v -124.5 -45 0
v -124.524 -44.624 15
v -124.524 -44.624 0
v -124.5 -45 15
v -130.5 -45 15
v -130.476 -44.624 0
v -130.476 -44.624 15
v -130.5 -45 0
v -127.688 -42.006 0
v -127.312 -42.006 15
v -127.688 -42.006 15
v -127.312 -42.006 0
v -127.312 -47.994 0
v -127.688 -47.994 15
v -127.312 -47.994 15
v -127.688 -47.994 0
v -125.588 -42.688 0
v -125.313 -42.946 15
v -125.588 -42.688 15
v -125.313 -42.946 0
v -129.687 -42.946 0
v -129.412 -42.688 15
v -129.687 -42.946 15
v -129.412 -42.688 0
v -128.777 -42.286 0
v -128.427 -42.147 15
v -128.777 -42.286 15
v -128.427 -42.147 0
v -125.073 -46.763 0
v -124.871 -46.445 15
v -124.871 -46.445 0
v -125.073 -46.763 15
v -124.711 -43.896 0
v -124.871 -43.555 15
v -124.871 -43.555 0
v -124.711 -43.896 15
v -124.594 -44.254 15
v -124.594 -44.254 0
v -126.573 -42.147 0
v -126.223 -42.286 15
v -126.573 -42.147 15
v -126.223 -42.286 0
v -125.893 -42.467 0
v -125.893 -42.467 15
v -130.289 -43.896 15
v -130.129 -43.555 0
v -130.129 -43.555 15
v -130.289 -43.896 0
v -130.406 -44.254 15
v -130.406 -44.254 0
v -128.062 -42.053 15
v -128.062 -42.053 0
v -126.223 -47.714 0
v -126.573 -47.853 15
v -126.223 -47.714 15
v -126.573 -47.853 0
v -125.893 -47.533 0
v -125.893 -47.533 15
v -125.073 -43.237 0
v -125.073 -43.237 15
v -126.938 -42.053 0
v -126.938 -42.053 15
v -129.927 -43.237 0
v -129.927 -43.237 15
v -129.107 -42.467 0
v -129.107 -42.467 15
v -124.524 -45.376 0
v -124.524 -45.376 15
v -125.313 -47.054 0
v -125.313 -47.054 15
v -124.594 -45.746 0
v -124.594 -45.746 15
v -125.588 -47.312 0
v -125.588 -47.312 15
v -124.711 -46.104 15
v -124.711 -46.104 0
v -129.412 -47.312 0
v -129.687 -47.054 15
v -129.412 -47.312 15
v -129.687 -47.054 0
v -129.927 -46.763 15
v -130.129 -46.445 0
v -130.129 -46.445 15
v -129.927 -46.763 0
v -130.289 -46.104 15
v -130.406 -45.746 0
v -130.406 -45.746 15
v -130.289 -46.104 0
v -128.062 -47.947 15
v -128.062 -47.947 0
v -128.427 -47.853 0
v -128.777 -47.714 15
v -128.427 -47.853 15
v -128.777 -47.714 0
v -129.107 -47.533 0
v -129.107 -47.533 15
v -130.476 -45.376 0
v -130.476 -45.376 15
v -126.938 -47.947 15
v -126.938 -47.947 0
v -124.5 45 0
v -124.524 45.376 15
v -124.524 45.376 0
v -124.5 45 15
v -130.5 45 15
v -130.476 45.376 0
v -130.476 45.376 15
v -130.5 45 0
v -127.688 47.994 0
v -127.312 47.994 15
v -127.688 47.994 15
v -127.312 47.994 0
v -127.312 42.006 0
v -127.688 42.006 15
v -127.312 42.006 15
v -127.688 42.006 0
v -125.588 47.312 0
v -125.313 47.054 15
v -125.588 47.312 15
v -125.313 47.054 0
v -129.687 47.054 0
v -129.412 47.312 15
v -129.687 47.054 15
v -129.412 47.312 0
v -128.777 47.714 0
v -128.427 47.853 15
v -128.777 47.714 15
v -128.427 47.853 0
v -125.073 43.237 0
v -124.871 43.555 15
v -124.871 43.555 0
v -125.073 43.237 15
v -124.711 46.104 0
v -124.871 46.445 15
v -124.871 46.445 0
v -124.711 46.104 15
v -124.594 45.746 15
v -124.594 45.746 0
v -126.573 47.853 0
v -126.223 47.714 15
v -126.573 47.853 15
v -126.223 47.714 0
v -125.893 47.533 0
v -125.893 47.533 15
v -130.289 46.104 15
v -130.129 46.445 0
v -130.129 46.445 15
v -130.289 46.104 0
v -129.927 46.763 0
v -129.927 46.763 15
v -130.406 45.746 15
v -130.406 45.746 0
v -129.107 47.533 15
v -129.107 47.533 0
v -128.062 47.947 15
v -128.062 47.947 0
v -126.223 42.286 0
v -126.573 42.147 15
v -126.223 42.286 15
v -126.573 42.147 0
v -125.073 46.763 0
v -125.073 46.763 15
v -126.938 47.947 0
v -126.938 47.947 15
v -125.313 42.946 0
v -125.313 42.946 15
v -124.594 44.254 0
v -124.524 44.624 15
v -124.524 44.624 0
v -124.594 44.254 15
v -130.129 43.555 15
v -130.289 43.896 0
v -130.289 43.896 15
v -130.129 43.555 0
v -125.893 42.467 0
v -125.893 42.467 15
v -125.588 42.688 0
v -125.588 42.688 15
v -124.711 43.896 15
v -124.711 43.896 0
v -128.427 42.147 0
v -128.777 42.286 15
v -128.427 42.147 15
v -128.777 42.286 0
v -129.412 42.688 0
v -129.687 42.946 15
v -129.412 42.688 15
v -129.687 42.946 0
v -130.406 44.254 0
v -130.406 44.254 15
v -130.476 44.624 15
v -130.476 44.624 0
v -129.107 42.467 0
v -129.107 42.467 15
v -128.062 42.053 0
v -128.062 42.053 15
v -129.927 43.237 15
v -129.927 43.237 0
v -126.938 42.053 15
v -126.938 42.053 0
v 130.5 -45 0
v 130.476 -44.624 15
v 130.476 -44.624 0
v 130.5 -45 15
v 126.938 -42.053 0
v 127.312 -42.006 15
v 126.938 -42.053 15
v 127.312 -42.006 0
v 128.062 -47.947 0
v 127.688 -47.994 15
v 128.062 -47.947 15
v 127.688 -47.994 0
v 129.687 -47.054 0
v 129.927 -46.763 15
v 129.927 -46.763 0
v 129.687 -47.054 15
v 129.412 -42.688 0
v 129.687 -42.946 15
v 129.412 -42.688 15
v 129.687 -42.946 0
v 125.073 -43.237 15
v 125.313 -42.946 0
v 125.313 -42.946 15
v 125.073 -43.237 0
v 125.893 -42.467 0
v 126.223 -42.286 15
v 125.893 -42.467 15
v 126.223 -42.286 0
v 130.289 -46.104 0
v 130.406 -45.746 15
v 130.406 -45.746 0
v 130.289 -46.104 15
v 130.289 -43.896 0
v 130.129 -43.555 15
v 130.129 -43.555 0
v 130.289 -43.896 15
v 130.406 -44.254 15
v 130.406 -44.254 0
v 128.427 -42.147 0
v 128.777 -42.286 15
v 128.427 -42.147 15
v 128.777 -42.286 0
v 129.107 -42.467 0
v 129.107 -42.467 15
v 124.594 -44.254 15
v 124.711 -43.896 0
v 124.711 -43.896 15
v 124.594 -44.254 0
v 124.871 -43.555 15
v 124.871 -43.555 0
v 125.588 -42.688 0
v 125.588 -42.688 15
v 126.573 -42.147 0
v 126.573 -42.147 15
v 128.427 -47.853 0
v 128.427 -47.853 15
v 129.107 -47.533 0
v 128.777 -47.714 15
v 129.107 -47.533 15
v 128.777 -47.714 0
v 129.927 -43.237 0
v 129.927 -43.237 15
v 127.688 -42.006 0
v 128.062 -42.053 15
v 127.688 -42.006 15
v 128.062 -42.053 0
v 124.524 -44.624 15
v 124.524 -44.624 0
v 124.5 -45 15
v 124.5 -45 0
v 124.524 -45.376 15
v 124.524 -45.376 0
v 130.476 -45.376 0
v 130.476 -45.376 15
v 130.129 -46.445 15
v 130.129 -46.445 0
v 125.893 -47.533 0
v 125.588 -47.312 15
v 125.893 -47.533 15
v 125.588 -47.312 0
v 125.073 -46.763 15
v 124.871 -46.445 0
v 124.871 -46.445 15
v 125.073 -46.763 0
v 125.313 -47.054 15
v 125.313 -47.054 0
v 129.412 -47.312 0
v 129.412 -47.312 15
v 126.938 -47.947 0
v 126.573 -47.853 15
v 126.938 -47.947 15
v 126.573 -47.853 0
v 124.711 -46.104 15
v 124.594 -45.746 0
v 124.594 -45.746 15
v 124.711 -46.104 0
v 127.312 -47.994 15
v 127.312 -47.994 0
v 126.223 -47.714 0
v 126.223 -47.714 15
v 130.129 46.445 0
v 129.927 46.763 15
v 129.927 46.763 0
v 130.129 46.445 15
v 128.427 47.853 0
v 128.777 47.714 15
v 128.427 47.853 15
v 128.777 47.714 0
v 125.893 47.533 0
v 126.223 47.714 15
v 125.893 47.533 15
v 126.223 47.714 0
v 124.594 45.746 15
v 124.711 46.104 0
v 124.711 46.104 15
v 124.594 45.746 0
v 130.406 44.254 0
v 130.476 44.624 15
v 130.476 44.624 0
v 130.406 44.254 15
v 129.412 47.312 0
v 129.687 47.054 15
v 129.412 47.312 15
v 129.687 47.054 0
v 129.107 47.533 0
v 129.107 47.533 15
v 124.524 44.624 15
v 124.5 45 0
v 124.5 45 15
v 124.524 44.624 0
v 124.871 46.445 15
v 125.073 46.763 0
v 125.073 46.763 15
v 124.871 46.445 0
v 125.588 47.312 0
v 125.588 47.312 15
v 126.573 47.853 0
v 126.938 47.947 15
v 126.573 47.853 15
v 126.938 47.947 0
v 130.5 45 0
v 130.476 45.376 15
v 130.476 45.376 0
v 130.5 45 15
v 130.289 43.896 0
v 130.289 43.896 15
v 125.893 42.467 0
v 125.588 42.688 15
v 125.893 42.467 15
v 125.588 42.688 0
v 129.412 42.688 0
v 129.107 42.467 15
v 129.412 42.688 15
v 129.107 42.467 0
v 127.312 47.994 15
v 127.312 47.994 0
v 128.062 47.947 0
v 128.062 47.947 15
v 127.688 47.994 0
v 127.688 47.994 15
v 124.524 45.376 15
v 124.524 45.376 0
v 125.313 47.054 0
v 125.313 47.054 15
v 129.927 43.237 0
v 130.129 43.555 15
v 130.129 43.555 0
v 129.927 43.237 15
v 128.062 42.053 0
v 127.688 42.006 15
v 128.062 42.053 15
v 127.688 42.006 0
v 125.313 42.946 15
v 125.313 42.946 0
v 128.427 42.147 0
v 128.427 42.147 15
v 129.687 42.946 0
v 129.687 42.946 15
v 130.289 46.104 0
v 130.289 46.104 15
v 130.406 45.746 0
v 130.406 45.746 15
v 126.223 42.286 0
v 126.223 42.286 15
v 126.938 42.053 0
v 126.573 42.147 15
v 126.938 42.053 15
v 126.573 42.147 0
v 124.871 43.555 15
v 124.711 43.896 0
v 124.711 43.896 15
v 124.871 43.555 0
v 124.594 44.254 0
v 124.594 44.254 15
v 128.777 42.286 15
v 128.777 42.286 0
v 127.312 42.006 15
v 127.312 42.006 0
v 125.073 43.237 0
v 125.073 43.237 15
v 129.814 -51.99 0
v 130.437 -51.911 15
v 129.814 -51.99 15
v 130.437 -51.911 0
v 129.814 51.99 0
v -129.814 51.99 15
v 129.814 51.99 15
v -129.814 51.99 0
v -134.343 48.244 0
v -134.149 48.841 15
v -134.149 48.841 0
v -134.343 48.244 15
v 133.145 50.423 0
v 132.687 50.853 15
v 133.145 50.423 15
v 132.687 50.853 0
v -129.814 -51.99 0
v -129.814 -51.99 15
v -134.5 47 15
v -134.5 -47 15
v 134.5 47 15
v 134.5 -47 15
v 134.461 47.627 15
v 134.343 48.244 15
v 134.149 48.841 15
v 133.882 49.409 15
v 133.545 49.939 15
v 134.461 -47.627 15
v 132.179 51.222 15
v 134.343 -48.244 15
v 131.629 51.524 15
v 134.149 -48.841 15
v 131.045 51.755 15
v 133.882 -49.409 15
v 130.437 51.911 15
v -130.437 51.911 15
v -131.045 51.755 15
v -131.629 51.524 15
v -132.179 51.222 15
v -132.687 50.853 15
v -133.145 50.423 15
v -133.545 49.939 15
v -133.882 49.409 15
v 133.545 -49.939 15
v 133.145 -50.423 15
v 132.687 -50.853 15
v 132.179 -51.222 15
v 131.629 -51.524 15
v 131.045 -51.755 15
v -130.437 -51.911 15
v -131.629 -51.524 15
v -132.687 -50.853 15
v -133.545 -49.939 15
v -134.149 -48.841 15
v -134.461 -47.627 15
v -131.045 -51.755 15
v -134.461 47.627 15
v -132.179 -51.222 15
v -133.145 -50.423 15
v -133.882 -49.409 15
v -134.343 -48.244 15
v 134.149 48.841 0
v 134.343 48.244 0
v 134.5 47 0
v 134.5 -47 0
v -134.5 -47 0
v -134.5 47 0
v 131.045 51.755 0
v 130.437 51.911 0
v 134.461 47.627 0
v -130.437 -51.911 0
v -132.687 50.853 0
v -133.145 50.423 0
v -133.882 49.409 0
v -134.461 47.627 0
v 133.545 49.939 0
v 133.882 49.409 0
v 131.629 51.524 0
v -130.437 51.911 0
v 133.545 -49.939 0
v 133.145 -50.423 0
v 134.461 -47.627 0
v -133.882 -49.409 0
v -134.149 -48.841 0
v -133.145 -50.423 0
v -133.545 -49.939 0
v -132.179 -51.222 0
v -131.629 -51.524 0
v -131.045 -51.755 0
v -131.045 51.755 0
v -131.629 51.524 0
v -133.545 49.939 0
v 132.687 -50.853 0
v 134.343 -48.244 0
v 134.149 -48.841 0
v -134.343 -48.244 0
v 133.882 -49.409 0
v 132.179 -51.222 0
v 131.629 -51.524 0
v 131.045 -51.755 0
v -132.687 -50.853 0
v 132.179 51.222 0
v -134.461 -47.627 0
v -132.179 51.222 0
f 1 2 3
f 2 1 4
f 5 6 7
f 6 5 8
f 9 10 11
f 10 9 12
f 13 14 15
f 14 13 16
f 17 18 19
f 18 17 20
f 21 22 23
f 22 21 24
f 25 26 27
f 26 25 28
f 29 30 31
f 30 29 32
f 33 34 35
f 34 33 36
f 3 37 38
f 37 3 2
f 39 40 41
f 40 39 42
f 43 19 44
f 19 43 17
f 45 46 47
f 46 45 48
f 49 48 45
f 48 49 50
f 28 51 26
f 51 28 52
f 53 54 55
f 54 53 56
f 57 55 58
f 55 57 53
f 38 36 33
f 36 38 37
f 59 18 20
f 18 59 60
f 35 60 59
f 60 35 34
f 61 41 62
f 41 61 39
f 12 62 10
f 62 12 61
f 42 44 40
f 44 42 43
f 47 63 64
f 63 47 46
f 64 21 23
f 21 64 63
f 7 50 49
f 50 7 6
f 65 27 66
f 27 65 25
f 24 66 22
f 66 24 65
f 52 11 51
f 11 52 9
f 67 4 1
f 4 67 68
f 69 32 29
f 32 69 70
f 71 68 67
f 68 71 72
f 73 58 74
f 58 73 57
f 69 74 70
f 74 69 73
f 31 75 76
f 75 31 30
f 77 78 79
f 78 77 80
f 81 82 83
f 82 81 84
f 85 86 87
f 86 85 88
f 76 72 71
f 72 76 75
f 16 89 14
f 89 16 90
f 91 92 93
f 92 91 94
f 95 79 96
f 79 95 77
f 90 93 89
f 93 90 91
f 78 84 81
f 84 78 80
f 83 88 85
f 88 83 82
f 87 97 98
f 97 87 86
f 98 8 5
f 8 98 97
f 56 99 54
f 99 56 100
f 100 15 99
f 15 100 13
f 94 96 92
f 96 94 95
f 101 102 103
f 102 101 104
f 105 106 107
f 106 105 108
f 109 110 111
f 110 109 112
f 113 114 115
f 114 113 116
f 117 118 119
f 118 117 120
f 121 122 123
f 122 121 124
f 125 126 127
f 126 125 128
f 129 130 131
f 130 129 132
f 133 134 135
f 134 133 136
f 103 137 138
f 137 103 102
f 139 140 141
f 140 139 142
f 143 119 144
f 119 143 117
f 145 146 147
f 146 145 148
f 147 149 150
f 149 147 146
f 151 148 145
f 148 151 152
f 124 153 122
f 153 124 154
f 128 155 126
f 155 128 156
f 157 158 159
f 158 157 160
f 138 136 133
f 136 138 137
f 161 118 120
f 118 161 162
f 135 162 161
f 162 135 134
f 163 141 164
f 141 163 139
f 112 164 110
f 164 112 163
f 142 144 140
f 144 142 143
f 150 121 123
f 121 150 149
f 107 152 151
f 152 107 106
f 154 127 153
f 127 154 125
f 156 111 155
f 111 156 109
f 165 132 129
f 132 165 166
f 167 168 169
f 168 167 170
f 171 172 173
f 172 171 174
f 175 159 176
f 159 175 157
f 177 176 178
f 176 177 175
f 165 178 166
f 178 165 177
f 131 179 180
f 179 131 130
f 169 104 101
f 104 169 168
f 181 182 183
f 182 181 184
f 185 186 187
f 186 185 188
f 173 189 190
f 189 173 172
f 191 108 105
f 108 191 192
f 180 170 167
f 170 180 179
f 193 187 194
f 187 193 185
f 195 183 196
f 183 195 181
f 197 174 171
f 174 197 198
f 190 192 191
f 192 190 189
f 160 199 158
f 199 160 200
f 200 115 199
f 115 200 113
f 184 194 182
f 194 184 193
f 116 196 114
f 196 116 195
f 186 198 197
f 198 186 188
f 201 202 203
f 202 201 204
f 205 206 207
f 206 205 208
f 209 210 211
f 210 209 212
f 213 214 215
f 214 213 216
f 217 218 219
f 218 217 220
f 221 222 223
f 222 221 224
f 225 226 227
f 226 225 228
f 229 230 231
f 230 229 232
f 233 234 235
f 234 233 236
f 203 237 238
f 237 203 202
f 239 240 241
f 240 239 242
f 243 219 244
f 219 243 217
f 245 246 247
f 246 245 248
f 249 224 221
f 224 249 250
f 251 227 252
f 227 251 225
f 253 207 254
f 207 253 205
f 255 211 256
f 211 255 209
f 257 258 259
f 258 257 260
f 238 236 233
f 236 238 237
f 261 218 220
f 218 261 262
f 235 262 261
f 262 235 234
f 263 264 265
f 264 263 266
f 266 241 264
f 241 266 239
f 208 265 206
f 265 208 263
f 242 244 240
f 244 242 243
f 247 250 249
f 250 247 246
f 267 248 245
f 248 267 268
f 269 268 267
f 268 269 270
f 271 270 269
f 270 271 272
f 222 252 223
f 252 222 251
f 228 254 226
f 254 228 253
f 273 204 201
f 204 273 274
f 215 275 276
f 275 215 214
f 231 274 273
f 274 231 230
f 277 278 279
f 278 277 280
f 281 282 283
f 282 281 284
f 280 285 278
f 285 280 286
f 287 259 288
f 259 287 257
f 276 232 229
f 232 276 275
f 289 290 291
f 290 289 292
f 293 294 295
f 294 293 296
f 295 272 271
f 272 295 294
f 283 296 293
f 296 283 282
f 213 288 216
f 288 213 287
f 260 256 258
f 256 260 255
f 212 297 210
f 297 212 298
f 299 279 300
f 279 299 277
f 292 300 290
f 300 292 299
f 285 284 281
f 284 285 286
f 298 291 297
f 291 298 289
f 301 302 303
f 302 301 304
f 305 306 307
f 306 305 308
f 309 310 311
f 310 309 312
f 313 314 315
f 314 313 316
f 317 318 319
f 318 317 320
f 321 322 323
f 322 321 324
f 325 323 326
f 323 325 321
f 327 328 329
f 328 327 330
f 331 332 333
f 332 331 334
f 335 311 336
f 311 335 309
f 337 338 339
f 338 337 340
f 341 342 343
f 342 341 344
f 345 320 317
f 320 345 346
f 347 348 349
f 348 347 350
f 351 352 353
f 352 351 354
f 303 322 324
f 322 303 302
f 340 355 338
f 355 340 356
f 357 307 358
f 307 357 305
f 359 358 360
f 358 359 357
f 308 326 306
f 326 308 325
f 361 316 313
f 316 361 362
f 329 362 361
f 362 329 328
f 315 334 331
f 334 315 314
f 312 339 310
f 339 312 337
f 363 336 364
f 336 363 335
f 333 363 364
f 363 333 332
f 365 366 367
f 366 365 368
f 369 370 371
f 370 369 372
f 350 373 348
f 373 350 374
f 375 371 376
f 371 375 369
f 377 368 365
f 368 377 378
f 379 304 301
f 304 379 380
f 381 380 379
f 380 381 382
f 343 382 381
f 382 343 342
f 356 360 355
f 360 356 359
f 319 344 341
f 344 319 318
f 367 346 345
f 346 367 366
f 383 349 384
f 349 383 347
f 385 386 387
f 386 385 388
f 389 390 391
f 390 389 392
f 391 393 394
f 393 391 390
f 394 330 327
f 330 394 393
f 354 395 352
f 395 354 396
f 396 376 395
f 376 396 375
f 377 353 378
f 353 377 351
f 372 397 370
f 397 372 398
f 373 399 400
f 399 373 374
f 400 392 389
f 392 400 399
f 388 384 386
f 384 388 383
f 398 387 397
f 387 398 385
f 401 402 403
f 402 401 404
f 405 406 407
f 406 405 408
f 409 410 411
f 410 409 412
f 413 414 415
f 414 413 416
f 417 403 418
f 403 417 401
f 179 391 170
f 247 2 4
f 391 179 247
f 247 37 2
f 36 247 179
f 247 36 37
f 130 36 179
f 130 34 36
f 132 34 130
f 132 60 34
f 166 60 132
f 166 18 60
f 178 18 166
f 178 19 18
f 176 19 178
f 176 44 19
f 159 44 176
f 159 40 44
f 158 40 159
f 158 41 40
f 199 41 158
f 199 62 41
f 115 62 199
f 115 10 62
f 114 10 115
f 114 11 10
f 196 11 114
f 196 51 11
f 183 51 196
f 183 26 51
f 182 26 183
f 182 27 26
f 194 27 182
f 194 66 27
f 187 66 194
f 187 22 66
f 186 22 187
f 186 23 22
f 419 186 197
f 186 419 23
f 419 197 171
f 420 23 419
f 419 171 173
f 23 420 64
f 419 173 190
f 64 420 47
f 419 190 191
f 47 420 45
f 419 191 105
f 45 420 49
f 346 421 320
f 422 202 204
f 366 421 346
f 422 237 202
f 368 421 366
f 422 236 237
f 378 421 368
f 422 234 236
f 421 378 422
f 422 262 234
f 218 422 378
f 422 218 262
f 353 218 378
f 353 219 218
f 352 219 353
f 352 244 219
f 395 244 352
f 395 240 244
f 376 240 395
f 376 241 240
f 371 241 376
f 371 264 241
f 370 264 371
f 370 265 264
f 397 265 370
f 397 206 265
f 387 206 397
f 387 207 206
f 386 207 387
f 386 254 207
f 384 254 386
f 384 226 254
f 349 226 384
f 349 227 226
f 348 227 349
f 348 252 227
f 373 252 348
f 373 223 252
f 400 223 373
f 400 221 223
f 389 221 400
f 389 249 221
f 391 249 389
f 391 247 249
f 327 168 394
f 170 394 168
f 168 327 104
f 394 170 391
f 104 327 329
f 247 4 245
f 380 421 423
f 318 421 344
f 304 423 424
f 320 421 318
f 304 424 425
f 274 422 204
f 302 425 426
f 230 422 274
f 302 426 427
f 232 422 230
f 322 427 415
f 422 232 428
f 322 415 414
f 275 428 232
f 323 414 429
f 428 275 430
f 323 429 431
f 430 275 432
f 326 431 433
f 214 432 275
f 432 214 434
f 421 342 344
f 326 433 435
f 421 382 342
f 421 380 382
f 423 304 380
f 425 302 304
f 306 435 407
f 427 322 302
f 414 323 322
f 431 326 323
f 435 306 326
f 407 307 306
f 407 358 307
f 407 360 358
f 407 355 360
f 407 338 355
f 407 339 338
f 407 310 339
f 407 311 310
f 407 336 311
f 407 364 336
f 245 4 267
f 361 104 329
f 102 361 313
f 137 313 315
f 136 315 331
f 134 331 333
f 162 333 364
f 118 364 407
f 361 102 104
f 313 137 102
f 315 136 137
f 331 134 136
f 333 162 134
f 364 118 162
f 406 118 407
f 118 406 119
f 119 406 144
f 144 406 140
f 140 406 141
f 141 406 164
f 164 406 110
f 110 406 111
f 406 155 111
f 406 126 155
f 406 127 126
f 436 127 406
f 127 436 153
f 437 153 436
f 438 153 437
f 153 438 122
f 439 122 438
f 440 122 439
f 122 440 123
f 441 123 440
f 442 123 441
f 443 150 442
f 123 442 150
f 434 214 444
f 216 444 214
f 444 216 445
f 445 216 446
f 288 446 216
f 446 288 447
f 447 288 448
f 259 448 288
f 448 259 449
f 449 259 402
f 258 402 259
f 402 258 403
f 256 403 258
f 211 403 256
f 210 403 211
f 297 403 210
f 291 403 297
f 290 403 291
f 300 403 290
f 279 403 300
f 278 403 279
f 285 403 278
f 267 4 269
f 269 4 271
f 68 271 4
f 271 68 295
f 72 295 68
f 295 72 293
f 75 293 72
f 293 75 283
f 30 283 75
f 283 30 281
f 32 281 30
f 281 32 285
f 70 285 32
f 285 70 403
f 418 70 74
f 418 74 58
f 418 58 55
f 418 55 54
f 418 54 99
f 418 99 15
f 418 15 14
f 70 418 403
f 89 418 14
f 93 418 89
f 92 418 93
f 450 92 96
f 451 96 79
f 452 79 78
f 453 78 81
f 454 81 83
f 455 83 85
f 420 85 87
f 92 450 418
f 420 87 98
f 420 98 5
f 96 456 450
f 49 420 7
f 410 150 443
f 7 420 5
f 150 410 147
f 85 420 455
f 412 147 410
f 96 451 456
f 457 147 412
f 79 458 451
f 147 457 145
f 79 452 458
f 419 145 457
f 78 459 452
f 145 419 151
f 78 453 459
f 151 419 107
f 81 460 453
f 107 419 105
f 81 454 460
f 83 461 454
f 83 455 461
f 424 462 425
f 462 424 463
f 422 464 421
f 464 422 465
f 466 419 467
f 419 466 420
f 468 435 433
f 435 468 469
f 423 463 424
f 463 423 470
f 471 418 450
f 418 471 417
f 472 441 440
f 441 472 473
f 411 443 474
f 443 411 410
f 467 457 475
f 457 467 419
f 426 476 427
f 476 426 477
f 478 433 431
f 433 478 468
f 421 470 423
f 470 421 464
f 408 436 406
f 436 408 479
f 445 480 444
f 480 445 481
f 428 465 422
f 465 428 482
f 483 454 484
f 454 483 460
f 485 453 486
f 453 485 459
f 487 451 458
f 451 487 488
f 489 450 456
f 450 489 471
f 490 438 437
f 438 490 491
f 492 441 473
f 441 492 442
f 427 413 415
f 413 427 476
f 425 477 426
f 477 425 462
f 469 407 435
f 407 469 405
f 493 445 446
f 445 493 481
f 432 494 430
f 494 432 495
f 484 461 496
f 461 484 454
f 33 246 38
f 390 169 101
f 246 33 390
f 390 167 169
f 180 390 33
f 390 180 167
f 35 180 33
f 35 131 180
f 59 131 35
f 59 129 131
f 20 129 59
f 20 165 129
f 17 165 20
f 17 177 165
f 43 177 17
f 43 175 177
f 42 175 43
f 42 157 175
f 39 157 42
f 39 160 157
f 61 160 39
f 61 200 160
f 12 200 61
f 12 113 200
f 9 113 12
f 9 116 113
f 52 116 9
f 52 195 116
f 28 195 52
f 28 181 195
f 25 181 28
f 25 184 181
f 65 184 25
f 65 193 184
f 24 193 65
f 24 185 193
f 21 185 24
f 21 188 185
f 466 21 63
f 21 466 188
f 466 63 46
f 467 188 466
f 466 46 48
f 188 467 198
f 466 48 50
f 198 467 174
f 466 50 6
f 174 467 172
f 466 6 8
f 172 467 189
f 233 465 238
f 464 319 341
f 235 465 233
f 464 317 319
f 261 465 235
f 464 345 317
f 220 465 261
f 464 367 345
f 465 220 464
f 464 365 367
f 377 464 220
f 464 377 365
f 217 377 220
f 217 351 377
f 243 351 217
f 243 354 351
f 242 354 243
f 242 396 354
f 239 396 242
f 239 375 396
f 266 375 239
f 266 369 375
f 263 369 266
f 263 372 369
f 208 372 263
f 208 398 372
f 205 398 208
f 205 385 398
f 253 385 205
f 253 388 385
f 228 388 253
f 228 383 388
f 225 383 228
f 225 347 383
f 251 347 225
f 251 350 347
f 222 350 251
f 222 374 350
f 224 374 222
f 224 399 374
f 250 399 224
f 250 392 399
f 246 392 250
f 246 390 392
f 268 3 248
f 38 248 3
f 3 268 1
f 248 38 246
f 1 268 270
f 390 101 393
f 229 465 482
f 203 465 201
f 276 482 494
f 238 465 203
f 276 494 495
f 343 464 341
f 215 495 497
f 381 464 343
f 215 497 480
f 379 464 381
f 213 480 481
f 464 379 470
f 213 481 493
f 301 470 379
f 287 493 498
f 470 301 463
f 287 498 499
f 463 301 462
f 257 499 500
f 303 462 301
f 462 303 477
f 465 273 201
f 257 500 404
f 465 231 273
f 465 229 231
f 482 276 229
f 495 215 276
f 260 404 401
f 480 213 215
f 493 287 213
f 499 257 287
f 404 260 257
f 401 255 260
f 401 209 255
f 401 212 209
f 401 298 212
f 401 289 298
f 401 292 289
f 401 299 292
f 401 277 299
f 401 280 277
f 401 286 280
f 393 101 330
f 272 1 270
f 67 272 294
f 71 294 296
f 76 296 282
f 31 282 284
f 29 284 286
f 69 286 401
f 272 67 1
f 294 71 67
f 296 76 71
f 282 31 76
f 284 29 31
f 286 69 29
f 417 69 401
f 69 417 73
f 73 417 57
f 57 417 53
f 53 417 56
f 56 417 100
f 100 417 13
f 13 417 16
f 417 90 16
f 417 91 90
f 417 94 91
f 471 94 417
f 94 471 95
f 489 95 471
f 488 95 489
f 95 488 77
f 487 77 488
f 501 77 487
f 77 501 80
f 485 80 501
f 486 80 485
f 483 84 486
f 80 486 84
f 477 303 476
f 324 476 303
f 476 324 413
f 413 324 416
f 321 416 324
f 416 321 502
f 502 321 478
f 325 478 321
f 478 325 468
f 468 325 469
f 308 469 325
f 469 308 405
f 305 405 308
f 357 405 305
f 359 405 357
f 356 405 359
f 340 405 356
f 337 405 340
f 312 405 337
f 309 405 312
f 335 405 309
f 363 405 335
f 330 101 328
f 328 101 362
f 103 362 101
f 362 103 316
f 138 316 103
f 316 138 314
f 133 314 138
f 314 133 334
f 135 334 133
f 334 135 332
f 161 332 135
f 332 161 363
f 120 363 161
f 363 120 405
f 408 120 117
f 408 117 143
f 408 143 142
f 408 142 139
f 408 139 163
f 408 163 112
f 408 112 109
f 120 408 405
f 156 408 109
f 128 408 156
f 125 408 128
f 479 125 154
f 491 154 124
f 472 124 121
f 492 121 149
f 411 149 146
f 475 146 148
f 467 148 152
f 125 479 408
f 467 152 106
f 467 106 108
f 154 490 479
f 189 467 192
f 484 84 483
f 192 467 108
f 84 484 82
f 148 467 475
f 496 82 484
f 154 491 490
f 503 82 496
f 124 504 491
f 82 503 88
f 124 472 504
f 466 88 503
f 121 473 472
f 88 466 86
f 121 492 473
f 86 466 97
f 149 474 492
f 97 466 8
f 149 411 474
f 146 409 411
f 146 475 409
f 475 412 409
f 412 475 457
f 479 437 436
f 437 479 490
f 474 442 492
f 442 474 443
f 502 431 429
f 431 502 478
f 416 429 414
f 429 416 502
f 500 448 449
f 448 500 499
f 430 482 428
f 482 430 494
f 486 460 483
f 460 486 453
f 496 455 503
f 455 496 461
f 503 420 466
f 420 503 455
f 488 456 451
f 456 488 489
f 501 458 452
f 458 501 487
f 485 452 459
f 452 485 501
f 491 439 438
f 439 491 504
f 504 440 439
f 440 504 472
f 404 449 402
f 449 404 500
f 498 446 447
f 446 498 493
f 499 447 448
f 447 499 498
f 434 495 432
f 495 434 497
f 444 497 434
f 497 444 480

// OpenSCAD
$fn = 50;


difference() {
	union() {
		hull() {
			translate(v = [-129.5000000000, 47.0000000000, 0]) {
				cylinder(h = 15, r = 5);
			}
			translate(v = [129.5000000000, 47.0000000000, 0]) {
				cylinder(h = 15, r = 5);
			}
			translate(v = [-129.5000000000, -47.0000000000, 0]) {
				cylinder(h = 15, r = 5);
			}
			translate(v = [129.5000000000, -47.0000000000, 0]) {
				cylinder(h = 15, r = 5);
			}
		}
	}
	union() {
		translate(v = [-127.5000000000, -45.0000000000, -100.0000000000]) {
			cylinder(h = 200, r = 3.0000000000);
		}
		translate(v = [-127.5000000000, 45.0000000000, -100.0000000000]) {
			cylinder(h = 200, r = 3.0000000000);
		}
		translate(v = [127.5000000000, -45.0000000000, -100.0000000000]) {
			cylinder(h = 200, r = 3.0000000000);
		}
		translate(v = [127.5000000000, 45.0000000000, -100.0000000000]) {
			cylinder(h = 200, r = 3.0000000000);
		}
	}
}
